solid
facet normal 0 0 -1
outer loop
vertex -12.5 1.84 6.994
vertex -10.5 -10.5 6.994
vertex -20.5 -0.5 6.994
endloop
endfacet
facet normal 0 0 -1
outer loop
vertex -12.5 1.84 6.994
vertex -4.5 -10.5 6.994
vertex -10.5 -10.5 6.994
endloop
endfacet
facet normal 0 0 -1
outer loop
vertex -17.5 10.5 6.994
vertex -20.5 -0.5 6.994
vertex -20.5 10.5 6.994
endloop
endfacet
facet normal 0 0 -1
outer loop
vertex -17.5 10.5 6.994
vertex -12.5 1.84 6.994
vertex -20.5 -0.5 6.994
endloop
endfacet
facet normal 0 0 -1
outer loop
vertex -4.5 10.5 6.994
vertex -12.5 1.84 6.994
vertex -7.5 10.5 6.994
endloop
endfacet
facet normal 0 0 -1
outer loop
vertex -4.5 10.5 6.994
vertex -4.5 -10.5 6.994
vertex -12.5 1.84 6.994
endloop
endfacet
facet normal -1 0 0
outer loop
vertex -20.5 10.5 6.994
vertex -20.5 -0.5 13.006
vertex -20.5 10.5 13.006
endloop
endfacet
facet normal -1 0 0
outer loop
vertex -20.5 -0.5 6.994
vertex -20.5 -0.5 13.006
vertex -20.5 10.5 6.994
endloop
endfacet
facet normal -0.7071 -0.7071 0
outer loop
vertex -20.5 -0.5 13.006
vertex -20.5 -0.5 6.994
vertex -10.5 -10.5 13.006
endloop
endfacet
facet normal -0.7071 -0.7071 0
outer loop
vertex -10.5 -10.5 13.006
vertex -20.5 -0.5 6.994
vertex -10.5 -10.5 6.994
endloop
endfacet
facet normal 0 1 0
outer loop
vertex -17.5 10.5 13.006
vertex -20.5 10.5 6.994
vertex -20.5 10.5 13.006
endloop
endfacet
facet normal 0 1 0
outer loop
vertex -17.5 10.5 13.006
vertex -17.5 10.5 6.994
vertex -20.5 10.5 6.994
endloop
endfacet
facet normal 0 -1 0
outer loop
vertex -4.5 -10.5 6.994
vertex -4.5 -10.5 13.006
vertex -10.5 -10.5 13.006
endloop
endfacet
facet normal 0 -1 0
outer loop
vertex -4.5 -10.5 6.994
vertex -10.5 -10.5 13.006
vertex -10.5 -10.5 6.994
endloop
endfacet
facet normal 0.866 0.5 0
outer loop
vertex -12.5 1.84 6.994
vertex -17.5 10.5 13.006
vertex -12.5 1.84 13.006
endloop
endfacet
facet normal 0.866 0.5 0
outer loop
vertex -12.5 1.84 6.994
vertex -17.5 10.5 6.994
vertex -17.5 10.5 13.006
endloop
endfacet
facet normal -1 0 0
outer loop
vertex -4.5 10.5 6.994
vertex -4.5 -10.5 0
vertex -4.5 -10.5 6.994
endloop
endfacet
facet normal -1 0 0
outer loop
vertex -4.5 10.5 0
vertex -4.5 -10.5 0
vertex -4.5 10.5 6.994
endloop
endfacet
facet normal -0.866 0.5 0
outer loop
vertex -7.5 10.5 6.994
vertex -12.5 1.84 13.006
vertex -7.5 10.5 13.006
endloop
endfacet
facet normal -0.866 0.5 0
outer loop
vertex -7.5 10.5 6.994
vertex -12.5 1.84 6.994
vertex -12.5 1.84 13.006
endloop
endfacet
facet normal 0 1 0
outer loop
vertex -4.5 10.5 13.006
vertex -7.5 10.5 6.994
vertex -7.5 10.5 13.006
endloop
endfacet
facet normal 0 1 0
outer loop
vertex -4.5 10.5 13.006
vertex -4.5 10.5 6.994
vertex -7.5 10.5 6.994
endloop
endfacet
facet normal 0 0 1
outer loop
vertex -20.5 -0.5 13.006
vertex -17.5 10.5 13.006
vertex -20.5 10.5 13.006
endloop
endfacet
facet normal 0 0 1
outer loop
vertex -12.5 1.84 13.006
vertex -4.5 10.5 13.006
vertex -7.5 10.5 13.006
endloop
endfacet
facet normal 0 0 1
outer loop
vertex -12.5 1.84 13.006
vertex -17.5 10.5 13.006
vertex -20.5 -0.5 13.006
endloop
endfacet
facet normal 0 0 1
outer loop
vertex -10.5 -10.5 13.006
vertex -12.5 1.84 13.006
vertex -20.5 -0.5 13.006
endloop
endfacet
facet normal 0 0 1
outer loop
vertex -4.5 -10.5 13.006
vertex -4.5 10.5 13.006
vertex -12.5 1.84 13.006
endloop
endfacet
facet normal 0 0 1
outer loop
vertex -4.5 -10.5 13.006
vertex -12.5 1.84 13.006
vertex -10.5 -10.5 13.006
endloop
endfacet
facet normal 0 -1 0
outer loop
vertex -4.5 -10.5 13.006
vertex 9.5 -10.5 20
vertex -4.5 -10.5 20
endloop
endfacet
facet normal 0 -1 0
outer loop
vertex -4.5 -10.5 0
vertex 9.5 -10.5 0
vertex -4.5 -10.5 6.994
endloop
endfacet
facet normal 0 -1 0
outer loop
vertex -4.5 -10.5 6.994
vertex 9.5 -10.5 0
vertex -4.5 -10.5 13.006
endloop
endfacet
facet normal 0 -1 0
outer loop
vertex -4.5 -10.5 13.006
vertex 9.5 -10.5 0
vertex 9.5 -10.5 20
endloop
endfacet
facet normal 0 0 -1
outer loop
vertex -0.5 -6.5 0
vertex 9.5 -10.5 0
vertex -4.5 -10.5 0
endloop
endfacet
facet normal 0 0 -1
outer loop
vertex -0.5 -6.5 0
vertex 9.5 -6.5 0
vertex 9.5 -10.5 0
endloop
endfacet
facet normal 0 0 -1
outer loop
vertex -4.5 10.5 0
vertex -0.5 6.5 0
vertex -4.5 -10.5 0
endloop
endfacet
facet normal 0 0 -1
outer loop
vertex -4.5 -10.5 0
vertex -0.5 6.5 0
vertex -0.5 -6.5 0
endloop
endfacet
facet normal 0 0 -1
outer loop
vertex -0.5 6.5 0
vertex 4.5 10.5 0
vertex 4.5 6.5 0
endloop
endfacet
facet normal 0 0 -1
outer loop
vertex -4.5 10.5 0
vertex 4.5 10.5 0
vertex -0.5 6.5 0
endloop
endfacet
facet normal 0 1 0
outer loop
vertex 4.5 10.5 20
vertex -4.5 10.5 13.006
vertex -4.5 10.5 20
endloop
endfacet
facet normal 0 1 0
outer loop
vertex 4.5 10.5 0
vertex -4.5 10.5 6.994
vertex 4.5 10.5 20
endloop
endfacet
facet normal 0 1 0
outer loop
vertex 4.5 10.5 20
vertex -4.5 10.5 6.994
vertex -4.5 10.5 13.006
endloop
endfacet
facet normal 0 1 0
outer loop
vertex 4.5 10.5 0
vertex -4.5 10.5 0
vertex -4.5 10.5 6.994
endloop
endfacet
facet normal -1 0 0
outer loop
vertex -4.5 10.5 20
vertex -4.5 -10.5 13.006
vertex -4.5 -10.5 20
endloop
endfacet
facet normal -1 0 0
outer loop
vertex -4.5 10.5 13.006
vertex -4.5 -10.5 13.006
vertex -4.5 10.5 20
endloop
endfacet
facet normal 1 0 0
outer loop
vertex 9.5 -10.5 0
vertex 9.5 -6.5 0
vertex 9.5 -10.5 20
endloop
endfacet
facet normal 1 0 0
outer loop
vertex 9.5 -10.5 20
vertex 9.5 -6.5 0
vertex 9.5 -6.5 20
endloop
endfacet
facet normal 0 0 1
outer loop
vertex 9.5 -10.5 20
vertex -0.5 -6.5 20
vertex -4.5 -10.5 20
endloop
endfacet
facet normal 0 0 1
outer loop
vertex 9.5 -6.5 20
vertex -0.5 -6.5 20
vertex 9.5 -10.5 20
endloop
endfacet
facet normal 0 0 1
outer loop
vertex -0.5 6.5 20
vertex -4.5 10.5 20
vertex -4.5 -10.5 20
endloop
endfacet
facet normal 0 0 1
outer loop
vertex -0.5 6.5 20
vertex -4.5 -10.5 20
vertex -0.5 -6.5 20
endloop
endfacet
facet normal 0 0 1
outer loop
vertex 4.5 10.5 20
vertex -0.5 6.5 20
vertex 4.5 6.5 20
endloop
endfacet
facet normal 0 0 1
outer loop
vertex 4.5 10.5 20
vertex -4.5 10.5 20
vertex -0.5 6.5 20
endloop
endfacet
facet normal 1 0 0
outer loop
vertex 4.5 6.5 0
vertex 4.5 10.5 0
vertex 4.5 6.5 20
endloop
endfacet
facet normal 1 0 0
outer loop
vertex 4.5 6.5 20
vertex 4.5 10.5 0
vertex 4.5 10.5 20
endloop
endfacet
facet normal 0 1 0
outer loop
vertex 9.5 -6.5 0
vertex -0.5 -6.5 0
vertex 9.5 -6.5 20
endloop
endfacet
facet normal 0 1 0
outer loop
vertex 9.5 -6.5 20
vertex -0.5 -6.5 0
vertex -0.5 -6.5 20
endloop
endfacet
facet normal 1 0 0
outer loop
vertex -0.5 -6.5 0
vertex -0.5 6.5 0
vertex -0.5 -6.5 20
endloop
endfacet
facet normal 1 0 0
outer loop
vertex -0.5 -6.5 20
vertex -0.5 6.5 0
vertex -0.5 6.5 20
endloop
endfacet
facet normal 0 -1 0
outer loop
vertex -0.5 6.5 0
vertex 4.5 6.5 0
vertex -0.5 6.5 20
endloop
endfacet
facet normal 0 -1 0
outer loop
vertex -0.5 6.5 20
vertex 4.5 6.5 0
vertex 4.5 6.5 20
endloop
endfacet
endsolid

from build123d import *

# Parameters (mm, degrees)
PAD_DEPTH    = 20
SKETCH001_W  = 21
SKETCH001_H  = 6.011268
PAD001_DEPTH = 16
POCKET_DEPTH = 13.006634
CHAMFER_SIZE = 10


with BuildPart() as part:
    # Sketch → Pad (new body)
    with BuildSketch(Plane.XY):
        Polygon((4.5, 6.5), (4.5, 10.5), (-4.5, 10.5), (-4.5, -10.5), (9.5, -10.5), (9.5, -6.5), (-0.5, -6.5), (-0.5, 6.5), align=None)
    extrude(amount=PAD_DEPTH)

    # Sketch001 (on Face3 of Pad) → Pad001 (join)
    with BuildSketch(Plane(origin=(-4.5, 0, 0), x_dir=(0, -1, 0), z_dir=(-1, 0, 0))):
        with Locations((0, 10)):
            Rectangle(SKETCH001_W, SKETCH001_H)
    extrude(amount=PAD001_DEPTH)

    # Sketch002 (on Face13 of Pad001) → Pocket (cut, through all)
    with BuildSketch(Plane(origin=(0, 0, 6.994366), x_dir=(1, 0, 0), z_dir=(0, 0, -1))):
        Polygon((-17.5, -10.5), (-12.5, -1.839746), (-7.5, -10.5), (-7.5, -16.27), (-17.5, -16.27), align=None)
    extrude(amount=-POCKET_DEPTH, mode=Mode.SUBTRACT)

    # Chamfer
    chamfer_edges = [part.edges().sort_by_distance(p)[0] for p in [
        (-20.5, -10.5, 10),
    ]]
    chamfer(chamfer_edges, length=CHAMFER_SIZE)


solid = part.part
